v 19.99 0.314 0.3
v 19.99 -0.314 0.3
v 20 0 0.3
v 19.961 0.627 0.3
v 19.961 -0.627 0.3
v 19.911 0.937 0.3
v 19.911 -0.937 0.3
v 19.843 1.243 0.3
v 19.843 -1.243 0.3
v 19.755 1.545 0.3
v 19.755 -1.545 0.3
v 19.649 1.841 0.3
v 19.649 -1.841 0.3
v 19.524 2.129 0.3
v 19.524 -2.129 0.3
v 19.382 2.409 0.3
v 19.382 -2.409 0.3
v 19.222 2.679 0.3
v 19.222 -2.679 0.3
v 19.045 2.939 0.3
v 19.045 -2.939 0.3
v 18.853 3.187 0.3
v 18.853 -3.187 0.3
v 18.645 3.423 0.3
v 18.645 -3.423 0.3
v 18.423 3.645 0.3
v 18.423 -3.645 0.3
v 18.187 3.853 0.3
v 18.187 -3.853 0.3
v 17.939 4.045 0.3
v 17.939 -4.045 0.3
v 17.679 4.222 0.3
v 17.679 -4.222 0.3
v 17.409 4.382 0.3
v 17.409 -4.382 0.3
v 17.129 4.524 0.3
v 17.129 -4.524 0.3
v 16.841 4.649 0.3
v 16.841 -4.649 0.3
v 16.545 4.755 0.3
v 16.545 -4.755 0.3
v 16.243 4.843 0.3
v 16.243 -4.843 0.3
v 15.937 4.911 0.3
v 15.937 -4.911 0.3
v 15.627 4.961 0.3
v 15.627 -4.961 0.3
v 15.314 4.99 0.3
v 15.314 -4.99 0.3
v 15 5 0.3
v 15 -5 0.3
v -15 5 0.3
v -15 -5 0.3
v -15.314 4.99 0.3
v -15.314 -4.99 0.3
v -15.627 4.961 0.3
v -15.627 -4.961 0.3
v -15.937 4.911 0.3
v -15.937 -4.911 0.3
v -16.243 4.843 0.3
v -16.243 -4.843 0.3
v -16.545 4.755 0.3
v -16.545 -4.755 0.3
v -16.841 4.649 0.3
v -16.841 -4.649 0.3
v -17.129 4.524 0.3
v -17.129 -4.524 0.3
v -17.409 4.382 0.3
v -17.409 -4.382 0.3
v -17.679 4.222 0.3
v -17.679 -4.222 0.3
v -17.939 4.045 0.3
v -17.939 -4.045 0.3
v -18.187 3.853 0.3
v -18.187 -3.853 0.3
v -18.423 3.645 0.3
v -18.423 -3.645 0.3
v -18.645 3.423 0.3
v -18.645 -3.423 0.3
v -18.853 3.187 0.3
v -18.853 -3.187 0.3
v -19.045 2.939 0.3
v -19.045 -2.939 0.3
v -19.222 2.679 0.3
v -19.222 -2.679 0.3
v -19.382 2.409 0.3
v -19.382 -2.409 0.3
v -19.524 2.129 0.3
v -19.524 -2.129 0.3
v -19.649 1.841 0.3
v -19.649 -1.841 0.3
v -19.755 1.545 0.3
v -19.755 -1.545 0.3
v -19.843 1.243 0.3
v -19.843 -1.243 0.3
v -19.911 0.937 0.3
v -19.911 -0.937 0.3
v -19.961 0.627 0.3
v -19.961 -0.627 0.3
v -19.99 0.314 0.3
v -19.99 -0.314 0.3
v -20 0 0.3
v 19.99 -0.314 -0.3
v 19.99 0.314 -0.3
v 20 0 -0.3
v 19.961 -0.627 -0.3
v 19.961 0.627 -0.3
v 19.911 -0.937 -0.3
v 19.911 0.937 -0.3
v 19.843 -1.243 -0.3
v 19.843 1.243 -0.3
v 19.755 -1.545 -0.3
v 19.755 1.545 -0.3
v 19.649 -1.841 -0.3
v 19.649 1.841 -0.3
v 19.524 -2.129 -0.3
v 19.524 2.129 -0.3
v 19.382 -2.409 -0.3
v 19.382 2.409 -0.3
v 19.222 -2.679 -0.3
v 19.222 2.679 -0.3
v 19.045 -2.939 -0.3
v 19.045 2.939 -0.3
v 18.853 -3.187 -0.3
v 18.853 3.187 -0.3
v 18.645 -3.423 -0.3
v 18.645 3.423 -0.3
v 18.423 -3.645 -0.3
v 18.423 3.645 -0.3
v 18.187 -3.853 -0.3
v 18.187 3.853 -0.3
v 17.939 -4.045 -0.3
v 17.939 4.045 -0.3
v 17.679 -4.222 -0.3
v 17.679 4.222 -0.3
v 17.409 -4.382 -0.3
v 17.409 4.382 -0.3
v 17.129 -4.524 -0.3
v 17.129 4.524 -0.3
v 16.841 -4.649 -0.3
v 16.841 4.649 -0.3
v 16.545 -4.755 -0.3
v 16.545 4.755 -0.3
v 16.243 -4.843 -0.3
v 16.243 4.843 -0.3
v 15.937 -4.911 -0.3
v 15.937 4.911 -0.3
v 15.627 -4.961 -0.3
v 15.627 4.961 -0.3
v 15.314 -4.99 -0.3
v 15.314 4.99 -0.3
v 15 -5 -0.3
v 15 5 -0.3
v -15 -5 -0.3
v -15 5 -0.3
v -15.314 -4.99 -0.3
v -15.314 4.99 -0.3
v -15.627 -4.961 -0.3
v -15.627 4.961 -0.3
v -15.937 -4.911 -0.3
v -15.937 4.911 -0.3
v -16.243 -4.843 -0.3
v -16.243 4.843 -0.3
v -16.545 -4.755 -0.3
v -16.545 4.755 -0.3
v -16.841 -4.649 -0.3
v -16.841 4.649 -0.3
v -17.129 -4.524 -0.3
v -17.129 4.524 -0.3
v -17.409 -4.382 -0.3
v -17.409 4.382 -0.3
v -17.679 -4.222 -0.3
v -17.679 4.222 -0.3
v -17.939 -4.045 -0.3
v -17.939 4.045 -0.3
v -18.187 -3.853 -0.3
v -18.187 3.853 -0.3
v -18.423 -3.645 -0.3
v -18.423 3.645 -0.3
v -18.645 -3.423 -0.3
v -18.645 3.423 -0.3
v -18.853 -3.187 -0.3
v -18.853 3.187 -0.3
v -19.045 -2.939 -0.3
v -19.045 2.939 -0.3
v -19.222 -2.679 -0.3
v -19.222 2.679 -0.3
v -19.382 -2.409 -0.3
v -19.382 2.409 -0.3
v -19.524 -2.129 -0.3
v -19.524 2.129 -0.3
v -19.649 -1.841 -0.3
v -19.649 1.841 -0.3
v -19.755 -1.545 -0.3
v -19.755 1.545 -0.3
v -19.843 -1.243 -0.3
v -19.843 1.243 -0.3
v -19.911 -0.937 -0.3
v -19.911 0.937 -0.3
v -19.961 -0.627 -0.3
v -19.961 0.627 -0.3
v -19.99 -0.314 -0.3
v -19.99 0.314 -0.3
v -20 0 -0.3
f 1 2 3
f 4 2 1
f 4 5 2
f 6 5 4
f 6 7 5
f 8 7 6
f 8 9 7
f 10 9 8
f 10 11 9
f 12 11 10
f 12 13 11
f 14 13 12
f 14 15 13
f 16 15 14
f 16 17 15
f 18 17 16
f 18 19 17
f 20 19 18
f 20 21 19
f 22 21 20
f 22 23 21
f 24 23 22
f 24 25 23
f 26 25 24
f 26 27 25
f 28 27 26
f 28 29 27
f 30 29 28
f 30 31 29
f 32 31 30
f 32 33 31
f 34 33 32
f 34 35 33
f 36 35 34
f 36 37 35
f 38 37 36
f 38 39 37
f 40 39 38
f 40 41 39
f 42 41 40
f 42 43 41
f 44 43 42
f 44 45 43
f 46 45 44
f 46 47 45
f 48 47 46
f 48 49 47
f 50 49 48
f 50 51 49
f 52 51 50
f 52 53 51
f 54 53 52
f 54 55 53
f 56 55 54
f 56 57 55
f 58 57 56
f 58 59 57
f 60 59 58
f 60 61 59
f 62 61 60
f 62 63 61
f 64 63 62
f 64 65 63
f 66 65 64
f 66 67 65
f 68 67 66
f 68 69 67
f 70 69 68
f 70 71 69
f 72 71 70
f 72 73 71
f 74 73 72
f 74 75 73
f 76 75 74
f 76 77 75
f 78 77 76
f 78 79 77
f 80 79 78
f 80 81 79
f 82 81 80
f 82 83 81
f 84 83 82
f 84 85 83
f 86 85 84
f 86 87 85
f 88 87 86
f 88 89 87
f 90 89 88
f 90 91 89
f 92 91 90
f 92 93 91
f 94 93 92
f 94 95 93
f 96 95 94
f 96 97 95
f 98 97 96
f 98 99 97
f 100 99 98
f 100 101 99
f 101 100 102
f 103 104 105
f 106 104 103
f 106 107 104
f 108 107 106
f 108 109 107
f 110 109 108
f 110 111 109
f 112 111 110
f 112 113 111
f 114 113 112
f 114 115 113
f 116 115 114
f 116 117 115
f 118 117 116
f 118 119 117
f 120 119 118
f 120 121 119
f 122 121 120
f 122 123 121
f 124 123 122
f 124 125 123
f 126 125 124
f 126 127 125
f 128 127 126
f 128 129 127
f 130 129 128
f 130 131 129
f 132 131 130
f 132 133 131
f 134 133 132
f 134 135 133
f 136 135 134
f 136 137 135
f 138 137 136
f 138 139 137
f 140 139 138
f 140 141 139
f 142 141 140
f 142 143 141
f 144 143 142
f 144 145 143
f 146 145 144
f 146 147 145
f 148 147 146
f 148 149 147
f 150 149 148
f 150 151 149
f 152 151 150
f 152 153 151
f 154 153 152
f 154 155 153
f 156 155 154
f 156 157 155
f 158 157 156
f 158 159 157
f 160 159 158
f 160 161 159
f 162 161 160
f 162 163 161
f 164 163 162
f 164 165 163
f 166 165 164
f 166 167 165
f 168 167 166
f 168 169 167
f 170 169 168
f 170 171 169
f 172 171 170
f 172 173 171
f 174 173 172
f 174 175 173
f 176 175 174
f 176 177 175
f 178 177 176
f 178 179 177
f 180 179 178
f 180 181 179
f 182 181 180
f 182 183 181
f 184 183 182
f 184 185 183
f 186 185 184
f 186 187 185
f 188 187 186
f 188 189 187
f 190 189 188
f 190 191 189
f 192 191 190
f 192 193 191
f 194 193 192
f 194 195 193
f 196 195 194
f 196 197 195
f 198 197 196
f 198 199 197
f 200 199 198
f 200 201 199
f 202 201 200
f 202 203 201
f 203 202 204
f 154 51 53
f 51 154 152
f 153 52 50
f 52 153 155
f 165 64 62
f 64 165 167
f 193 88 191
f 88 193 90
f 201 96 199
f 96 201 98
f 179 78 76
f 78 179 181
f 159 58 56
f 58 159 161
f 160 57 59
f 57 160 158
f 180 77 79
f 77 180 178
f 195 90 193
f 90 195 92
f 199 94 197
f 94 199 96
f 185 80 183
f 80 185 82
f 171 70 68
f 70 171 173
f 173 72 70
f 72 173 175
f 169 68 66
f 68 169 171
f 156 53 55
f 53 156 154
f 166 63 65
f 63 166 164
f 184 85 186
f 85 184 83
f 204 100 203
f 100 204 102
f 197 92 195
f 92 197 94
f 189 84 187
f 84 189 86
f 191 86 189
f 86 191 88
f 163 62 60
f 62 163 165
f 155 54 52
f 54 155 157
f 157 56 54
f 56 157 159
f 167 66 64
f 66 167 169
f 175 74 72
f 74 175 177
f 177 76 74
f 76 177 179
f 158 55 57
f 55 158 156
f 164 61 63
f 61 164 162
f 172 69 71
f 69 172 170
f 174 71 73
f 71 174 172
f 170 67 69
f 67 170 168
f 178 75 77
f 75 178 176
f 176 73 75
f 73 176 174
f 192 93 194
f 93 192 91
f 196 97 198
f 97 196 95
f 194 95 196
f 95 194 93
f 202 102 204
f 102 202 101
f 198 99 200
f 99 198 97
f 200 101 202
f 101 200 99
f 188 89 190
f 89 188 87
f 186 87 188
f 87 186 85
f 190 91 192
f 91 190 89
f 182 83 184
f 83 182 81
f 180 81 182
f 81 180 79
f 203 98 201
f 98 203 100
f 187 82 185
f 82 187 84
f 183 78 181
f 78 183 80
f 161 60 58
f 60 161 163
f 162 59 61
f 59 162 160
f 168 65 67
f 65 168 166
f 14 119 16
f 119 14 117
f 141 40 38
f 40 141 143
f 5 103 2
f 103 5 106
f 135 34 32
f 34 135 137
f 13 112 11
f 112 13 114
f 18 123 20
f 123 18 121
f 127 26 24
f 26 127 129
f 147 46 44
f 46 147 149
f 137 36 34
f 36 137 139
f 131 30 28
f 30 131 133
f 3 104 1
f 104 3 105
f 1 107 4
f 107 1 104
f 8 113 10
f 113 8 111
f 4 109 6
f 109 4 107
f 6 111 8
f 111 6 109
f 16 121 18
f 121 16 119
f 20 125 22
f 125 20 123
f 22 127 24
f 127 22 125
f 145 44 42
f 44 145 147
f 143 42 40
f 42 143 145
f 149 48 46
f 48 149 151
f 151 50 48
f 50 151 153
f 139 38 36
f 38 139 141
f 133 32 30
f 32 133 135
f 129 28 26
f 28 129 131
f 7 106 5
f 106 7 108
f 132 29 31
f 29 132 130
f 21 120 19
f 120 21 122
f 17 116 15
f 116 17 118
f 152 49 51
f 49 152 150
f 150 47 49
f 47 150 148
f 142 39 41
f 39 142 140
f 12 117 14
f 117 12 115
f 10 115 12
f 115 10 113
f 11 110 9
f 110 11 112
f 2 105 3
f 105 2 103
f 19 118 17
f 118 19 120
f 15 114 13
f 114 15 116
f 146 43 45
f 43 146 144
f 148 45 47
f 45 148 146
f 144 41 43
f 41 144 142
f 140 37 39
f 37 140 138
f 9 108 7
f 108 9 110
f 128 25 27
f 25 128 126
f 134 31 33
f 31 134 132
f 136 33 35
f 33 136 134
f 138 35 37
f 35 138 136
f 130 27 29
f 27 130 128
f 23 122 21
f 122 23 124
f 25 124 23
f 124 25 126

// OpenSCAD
$fn = 100;

cube([30, 10, .6], center=true);
translate([-15, 0, 0]) cylinder(d=10, h=.6, center=true);
translate([15, 0, 0]) cylinder(d=10, h=.6, center=true);
